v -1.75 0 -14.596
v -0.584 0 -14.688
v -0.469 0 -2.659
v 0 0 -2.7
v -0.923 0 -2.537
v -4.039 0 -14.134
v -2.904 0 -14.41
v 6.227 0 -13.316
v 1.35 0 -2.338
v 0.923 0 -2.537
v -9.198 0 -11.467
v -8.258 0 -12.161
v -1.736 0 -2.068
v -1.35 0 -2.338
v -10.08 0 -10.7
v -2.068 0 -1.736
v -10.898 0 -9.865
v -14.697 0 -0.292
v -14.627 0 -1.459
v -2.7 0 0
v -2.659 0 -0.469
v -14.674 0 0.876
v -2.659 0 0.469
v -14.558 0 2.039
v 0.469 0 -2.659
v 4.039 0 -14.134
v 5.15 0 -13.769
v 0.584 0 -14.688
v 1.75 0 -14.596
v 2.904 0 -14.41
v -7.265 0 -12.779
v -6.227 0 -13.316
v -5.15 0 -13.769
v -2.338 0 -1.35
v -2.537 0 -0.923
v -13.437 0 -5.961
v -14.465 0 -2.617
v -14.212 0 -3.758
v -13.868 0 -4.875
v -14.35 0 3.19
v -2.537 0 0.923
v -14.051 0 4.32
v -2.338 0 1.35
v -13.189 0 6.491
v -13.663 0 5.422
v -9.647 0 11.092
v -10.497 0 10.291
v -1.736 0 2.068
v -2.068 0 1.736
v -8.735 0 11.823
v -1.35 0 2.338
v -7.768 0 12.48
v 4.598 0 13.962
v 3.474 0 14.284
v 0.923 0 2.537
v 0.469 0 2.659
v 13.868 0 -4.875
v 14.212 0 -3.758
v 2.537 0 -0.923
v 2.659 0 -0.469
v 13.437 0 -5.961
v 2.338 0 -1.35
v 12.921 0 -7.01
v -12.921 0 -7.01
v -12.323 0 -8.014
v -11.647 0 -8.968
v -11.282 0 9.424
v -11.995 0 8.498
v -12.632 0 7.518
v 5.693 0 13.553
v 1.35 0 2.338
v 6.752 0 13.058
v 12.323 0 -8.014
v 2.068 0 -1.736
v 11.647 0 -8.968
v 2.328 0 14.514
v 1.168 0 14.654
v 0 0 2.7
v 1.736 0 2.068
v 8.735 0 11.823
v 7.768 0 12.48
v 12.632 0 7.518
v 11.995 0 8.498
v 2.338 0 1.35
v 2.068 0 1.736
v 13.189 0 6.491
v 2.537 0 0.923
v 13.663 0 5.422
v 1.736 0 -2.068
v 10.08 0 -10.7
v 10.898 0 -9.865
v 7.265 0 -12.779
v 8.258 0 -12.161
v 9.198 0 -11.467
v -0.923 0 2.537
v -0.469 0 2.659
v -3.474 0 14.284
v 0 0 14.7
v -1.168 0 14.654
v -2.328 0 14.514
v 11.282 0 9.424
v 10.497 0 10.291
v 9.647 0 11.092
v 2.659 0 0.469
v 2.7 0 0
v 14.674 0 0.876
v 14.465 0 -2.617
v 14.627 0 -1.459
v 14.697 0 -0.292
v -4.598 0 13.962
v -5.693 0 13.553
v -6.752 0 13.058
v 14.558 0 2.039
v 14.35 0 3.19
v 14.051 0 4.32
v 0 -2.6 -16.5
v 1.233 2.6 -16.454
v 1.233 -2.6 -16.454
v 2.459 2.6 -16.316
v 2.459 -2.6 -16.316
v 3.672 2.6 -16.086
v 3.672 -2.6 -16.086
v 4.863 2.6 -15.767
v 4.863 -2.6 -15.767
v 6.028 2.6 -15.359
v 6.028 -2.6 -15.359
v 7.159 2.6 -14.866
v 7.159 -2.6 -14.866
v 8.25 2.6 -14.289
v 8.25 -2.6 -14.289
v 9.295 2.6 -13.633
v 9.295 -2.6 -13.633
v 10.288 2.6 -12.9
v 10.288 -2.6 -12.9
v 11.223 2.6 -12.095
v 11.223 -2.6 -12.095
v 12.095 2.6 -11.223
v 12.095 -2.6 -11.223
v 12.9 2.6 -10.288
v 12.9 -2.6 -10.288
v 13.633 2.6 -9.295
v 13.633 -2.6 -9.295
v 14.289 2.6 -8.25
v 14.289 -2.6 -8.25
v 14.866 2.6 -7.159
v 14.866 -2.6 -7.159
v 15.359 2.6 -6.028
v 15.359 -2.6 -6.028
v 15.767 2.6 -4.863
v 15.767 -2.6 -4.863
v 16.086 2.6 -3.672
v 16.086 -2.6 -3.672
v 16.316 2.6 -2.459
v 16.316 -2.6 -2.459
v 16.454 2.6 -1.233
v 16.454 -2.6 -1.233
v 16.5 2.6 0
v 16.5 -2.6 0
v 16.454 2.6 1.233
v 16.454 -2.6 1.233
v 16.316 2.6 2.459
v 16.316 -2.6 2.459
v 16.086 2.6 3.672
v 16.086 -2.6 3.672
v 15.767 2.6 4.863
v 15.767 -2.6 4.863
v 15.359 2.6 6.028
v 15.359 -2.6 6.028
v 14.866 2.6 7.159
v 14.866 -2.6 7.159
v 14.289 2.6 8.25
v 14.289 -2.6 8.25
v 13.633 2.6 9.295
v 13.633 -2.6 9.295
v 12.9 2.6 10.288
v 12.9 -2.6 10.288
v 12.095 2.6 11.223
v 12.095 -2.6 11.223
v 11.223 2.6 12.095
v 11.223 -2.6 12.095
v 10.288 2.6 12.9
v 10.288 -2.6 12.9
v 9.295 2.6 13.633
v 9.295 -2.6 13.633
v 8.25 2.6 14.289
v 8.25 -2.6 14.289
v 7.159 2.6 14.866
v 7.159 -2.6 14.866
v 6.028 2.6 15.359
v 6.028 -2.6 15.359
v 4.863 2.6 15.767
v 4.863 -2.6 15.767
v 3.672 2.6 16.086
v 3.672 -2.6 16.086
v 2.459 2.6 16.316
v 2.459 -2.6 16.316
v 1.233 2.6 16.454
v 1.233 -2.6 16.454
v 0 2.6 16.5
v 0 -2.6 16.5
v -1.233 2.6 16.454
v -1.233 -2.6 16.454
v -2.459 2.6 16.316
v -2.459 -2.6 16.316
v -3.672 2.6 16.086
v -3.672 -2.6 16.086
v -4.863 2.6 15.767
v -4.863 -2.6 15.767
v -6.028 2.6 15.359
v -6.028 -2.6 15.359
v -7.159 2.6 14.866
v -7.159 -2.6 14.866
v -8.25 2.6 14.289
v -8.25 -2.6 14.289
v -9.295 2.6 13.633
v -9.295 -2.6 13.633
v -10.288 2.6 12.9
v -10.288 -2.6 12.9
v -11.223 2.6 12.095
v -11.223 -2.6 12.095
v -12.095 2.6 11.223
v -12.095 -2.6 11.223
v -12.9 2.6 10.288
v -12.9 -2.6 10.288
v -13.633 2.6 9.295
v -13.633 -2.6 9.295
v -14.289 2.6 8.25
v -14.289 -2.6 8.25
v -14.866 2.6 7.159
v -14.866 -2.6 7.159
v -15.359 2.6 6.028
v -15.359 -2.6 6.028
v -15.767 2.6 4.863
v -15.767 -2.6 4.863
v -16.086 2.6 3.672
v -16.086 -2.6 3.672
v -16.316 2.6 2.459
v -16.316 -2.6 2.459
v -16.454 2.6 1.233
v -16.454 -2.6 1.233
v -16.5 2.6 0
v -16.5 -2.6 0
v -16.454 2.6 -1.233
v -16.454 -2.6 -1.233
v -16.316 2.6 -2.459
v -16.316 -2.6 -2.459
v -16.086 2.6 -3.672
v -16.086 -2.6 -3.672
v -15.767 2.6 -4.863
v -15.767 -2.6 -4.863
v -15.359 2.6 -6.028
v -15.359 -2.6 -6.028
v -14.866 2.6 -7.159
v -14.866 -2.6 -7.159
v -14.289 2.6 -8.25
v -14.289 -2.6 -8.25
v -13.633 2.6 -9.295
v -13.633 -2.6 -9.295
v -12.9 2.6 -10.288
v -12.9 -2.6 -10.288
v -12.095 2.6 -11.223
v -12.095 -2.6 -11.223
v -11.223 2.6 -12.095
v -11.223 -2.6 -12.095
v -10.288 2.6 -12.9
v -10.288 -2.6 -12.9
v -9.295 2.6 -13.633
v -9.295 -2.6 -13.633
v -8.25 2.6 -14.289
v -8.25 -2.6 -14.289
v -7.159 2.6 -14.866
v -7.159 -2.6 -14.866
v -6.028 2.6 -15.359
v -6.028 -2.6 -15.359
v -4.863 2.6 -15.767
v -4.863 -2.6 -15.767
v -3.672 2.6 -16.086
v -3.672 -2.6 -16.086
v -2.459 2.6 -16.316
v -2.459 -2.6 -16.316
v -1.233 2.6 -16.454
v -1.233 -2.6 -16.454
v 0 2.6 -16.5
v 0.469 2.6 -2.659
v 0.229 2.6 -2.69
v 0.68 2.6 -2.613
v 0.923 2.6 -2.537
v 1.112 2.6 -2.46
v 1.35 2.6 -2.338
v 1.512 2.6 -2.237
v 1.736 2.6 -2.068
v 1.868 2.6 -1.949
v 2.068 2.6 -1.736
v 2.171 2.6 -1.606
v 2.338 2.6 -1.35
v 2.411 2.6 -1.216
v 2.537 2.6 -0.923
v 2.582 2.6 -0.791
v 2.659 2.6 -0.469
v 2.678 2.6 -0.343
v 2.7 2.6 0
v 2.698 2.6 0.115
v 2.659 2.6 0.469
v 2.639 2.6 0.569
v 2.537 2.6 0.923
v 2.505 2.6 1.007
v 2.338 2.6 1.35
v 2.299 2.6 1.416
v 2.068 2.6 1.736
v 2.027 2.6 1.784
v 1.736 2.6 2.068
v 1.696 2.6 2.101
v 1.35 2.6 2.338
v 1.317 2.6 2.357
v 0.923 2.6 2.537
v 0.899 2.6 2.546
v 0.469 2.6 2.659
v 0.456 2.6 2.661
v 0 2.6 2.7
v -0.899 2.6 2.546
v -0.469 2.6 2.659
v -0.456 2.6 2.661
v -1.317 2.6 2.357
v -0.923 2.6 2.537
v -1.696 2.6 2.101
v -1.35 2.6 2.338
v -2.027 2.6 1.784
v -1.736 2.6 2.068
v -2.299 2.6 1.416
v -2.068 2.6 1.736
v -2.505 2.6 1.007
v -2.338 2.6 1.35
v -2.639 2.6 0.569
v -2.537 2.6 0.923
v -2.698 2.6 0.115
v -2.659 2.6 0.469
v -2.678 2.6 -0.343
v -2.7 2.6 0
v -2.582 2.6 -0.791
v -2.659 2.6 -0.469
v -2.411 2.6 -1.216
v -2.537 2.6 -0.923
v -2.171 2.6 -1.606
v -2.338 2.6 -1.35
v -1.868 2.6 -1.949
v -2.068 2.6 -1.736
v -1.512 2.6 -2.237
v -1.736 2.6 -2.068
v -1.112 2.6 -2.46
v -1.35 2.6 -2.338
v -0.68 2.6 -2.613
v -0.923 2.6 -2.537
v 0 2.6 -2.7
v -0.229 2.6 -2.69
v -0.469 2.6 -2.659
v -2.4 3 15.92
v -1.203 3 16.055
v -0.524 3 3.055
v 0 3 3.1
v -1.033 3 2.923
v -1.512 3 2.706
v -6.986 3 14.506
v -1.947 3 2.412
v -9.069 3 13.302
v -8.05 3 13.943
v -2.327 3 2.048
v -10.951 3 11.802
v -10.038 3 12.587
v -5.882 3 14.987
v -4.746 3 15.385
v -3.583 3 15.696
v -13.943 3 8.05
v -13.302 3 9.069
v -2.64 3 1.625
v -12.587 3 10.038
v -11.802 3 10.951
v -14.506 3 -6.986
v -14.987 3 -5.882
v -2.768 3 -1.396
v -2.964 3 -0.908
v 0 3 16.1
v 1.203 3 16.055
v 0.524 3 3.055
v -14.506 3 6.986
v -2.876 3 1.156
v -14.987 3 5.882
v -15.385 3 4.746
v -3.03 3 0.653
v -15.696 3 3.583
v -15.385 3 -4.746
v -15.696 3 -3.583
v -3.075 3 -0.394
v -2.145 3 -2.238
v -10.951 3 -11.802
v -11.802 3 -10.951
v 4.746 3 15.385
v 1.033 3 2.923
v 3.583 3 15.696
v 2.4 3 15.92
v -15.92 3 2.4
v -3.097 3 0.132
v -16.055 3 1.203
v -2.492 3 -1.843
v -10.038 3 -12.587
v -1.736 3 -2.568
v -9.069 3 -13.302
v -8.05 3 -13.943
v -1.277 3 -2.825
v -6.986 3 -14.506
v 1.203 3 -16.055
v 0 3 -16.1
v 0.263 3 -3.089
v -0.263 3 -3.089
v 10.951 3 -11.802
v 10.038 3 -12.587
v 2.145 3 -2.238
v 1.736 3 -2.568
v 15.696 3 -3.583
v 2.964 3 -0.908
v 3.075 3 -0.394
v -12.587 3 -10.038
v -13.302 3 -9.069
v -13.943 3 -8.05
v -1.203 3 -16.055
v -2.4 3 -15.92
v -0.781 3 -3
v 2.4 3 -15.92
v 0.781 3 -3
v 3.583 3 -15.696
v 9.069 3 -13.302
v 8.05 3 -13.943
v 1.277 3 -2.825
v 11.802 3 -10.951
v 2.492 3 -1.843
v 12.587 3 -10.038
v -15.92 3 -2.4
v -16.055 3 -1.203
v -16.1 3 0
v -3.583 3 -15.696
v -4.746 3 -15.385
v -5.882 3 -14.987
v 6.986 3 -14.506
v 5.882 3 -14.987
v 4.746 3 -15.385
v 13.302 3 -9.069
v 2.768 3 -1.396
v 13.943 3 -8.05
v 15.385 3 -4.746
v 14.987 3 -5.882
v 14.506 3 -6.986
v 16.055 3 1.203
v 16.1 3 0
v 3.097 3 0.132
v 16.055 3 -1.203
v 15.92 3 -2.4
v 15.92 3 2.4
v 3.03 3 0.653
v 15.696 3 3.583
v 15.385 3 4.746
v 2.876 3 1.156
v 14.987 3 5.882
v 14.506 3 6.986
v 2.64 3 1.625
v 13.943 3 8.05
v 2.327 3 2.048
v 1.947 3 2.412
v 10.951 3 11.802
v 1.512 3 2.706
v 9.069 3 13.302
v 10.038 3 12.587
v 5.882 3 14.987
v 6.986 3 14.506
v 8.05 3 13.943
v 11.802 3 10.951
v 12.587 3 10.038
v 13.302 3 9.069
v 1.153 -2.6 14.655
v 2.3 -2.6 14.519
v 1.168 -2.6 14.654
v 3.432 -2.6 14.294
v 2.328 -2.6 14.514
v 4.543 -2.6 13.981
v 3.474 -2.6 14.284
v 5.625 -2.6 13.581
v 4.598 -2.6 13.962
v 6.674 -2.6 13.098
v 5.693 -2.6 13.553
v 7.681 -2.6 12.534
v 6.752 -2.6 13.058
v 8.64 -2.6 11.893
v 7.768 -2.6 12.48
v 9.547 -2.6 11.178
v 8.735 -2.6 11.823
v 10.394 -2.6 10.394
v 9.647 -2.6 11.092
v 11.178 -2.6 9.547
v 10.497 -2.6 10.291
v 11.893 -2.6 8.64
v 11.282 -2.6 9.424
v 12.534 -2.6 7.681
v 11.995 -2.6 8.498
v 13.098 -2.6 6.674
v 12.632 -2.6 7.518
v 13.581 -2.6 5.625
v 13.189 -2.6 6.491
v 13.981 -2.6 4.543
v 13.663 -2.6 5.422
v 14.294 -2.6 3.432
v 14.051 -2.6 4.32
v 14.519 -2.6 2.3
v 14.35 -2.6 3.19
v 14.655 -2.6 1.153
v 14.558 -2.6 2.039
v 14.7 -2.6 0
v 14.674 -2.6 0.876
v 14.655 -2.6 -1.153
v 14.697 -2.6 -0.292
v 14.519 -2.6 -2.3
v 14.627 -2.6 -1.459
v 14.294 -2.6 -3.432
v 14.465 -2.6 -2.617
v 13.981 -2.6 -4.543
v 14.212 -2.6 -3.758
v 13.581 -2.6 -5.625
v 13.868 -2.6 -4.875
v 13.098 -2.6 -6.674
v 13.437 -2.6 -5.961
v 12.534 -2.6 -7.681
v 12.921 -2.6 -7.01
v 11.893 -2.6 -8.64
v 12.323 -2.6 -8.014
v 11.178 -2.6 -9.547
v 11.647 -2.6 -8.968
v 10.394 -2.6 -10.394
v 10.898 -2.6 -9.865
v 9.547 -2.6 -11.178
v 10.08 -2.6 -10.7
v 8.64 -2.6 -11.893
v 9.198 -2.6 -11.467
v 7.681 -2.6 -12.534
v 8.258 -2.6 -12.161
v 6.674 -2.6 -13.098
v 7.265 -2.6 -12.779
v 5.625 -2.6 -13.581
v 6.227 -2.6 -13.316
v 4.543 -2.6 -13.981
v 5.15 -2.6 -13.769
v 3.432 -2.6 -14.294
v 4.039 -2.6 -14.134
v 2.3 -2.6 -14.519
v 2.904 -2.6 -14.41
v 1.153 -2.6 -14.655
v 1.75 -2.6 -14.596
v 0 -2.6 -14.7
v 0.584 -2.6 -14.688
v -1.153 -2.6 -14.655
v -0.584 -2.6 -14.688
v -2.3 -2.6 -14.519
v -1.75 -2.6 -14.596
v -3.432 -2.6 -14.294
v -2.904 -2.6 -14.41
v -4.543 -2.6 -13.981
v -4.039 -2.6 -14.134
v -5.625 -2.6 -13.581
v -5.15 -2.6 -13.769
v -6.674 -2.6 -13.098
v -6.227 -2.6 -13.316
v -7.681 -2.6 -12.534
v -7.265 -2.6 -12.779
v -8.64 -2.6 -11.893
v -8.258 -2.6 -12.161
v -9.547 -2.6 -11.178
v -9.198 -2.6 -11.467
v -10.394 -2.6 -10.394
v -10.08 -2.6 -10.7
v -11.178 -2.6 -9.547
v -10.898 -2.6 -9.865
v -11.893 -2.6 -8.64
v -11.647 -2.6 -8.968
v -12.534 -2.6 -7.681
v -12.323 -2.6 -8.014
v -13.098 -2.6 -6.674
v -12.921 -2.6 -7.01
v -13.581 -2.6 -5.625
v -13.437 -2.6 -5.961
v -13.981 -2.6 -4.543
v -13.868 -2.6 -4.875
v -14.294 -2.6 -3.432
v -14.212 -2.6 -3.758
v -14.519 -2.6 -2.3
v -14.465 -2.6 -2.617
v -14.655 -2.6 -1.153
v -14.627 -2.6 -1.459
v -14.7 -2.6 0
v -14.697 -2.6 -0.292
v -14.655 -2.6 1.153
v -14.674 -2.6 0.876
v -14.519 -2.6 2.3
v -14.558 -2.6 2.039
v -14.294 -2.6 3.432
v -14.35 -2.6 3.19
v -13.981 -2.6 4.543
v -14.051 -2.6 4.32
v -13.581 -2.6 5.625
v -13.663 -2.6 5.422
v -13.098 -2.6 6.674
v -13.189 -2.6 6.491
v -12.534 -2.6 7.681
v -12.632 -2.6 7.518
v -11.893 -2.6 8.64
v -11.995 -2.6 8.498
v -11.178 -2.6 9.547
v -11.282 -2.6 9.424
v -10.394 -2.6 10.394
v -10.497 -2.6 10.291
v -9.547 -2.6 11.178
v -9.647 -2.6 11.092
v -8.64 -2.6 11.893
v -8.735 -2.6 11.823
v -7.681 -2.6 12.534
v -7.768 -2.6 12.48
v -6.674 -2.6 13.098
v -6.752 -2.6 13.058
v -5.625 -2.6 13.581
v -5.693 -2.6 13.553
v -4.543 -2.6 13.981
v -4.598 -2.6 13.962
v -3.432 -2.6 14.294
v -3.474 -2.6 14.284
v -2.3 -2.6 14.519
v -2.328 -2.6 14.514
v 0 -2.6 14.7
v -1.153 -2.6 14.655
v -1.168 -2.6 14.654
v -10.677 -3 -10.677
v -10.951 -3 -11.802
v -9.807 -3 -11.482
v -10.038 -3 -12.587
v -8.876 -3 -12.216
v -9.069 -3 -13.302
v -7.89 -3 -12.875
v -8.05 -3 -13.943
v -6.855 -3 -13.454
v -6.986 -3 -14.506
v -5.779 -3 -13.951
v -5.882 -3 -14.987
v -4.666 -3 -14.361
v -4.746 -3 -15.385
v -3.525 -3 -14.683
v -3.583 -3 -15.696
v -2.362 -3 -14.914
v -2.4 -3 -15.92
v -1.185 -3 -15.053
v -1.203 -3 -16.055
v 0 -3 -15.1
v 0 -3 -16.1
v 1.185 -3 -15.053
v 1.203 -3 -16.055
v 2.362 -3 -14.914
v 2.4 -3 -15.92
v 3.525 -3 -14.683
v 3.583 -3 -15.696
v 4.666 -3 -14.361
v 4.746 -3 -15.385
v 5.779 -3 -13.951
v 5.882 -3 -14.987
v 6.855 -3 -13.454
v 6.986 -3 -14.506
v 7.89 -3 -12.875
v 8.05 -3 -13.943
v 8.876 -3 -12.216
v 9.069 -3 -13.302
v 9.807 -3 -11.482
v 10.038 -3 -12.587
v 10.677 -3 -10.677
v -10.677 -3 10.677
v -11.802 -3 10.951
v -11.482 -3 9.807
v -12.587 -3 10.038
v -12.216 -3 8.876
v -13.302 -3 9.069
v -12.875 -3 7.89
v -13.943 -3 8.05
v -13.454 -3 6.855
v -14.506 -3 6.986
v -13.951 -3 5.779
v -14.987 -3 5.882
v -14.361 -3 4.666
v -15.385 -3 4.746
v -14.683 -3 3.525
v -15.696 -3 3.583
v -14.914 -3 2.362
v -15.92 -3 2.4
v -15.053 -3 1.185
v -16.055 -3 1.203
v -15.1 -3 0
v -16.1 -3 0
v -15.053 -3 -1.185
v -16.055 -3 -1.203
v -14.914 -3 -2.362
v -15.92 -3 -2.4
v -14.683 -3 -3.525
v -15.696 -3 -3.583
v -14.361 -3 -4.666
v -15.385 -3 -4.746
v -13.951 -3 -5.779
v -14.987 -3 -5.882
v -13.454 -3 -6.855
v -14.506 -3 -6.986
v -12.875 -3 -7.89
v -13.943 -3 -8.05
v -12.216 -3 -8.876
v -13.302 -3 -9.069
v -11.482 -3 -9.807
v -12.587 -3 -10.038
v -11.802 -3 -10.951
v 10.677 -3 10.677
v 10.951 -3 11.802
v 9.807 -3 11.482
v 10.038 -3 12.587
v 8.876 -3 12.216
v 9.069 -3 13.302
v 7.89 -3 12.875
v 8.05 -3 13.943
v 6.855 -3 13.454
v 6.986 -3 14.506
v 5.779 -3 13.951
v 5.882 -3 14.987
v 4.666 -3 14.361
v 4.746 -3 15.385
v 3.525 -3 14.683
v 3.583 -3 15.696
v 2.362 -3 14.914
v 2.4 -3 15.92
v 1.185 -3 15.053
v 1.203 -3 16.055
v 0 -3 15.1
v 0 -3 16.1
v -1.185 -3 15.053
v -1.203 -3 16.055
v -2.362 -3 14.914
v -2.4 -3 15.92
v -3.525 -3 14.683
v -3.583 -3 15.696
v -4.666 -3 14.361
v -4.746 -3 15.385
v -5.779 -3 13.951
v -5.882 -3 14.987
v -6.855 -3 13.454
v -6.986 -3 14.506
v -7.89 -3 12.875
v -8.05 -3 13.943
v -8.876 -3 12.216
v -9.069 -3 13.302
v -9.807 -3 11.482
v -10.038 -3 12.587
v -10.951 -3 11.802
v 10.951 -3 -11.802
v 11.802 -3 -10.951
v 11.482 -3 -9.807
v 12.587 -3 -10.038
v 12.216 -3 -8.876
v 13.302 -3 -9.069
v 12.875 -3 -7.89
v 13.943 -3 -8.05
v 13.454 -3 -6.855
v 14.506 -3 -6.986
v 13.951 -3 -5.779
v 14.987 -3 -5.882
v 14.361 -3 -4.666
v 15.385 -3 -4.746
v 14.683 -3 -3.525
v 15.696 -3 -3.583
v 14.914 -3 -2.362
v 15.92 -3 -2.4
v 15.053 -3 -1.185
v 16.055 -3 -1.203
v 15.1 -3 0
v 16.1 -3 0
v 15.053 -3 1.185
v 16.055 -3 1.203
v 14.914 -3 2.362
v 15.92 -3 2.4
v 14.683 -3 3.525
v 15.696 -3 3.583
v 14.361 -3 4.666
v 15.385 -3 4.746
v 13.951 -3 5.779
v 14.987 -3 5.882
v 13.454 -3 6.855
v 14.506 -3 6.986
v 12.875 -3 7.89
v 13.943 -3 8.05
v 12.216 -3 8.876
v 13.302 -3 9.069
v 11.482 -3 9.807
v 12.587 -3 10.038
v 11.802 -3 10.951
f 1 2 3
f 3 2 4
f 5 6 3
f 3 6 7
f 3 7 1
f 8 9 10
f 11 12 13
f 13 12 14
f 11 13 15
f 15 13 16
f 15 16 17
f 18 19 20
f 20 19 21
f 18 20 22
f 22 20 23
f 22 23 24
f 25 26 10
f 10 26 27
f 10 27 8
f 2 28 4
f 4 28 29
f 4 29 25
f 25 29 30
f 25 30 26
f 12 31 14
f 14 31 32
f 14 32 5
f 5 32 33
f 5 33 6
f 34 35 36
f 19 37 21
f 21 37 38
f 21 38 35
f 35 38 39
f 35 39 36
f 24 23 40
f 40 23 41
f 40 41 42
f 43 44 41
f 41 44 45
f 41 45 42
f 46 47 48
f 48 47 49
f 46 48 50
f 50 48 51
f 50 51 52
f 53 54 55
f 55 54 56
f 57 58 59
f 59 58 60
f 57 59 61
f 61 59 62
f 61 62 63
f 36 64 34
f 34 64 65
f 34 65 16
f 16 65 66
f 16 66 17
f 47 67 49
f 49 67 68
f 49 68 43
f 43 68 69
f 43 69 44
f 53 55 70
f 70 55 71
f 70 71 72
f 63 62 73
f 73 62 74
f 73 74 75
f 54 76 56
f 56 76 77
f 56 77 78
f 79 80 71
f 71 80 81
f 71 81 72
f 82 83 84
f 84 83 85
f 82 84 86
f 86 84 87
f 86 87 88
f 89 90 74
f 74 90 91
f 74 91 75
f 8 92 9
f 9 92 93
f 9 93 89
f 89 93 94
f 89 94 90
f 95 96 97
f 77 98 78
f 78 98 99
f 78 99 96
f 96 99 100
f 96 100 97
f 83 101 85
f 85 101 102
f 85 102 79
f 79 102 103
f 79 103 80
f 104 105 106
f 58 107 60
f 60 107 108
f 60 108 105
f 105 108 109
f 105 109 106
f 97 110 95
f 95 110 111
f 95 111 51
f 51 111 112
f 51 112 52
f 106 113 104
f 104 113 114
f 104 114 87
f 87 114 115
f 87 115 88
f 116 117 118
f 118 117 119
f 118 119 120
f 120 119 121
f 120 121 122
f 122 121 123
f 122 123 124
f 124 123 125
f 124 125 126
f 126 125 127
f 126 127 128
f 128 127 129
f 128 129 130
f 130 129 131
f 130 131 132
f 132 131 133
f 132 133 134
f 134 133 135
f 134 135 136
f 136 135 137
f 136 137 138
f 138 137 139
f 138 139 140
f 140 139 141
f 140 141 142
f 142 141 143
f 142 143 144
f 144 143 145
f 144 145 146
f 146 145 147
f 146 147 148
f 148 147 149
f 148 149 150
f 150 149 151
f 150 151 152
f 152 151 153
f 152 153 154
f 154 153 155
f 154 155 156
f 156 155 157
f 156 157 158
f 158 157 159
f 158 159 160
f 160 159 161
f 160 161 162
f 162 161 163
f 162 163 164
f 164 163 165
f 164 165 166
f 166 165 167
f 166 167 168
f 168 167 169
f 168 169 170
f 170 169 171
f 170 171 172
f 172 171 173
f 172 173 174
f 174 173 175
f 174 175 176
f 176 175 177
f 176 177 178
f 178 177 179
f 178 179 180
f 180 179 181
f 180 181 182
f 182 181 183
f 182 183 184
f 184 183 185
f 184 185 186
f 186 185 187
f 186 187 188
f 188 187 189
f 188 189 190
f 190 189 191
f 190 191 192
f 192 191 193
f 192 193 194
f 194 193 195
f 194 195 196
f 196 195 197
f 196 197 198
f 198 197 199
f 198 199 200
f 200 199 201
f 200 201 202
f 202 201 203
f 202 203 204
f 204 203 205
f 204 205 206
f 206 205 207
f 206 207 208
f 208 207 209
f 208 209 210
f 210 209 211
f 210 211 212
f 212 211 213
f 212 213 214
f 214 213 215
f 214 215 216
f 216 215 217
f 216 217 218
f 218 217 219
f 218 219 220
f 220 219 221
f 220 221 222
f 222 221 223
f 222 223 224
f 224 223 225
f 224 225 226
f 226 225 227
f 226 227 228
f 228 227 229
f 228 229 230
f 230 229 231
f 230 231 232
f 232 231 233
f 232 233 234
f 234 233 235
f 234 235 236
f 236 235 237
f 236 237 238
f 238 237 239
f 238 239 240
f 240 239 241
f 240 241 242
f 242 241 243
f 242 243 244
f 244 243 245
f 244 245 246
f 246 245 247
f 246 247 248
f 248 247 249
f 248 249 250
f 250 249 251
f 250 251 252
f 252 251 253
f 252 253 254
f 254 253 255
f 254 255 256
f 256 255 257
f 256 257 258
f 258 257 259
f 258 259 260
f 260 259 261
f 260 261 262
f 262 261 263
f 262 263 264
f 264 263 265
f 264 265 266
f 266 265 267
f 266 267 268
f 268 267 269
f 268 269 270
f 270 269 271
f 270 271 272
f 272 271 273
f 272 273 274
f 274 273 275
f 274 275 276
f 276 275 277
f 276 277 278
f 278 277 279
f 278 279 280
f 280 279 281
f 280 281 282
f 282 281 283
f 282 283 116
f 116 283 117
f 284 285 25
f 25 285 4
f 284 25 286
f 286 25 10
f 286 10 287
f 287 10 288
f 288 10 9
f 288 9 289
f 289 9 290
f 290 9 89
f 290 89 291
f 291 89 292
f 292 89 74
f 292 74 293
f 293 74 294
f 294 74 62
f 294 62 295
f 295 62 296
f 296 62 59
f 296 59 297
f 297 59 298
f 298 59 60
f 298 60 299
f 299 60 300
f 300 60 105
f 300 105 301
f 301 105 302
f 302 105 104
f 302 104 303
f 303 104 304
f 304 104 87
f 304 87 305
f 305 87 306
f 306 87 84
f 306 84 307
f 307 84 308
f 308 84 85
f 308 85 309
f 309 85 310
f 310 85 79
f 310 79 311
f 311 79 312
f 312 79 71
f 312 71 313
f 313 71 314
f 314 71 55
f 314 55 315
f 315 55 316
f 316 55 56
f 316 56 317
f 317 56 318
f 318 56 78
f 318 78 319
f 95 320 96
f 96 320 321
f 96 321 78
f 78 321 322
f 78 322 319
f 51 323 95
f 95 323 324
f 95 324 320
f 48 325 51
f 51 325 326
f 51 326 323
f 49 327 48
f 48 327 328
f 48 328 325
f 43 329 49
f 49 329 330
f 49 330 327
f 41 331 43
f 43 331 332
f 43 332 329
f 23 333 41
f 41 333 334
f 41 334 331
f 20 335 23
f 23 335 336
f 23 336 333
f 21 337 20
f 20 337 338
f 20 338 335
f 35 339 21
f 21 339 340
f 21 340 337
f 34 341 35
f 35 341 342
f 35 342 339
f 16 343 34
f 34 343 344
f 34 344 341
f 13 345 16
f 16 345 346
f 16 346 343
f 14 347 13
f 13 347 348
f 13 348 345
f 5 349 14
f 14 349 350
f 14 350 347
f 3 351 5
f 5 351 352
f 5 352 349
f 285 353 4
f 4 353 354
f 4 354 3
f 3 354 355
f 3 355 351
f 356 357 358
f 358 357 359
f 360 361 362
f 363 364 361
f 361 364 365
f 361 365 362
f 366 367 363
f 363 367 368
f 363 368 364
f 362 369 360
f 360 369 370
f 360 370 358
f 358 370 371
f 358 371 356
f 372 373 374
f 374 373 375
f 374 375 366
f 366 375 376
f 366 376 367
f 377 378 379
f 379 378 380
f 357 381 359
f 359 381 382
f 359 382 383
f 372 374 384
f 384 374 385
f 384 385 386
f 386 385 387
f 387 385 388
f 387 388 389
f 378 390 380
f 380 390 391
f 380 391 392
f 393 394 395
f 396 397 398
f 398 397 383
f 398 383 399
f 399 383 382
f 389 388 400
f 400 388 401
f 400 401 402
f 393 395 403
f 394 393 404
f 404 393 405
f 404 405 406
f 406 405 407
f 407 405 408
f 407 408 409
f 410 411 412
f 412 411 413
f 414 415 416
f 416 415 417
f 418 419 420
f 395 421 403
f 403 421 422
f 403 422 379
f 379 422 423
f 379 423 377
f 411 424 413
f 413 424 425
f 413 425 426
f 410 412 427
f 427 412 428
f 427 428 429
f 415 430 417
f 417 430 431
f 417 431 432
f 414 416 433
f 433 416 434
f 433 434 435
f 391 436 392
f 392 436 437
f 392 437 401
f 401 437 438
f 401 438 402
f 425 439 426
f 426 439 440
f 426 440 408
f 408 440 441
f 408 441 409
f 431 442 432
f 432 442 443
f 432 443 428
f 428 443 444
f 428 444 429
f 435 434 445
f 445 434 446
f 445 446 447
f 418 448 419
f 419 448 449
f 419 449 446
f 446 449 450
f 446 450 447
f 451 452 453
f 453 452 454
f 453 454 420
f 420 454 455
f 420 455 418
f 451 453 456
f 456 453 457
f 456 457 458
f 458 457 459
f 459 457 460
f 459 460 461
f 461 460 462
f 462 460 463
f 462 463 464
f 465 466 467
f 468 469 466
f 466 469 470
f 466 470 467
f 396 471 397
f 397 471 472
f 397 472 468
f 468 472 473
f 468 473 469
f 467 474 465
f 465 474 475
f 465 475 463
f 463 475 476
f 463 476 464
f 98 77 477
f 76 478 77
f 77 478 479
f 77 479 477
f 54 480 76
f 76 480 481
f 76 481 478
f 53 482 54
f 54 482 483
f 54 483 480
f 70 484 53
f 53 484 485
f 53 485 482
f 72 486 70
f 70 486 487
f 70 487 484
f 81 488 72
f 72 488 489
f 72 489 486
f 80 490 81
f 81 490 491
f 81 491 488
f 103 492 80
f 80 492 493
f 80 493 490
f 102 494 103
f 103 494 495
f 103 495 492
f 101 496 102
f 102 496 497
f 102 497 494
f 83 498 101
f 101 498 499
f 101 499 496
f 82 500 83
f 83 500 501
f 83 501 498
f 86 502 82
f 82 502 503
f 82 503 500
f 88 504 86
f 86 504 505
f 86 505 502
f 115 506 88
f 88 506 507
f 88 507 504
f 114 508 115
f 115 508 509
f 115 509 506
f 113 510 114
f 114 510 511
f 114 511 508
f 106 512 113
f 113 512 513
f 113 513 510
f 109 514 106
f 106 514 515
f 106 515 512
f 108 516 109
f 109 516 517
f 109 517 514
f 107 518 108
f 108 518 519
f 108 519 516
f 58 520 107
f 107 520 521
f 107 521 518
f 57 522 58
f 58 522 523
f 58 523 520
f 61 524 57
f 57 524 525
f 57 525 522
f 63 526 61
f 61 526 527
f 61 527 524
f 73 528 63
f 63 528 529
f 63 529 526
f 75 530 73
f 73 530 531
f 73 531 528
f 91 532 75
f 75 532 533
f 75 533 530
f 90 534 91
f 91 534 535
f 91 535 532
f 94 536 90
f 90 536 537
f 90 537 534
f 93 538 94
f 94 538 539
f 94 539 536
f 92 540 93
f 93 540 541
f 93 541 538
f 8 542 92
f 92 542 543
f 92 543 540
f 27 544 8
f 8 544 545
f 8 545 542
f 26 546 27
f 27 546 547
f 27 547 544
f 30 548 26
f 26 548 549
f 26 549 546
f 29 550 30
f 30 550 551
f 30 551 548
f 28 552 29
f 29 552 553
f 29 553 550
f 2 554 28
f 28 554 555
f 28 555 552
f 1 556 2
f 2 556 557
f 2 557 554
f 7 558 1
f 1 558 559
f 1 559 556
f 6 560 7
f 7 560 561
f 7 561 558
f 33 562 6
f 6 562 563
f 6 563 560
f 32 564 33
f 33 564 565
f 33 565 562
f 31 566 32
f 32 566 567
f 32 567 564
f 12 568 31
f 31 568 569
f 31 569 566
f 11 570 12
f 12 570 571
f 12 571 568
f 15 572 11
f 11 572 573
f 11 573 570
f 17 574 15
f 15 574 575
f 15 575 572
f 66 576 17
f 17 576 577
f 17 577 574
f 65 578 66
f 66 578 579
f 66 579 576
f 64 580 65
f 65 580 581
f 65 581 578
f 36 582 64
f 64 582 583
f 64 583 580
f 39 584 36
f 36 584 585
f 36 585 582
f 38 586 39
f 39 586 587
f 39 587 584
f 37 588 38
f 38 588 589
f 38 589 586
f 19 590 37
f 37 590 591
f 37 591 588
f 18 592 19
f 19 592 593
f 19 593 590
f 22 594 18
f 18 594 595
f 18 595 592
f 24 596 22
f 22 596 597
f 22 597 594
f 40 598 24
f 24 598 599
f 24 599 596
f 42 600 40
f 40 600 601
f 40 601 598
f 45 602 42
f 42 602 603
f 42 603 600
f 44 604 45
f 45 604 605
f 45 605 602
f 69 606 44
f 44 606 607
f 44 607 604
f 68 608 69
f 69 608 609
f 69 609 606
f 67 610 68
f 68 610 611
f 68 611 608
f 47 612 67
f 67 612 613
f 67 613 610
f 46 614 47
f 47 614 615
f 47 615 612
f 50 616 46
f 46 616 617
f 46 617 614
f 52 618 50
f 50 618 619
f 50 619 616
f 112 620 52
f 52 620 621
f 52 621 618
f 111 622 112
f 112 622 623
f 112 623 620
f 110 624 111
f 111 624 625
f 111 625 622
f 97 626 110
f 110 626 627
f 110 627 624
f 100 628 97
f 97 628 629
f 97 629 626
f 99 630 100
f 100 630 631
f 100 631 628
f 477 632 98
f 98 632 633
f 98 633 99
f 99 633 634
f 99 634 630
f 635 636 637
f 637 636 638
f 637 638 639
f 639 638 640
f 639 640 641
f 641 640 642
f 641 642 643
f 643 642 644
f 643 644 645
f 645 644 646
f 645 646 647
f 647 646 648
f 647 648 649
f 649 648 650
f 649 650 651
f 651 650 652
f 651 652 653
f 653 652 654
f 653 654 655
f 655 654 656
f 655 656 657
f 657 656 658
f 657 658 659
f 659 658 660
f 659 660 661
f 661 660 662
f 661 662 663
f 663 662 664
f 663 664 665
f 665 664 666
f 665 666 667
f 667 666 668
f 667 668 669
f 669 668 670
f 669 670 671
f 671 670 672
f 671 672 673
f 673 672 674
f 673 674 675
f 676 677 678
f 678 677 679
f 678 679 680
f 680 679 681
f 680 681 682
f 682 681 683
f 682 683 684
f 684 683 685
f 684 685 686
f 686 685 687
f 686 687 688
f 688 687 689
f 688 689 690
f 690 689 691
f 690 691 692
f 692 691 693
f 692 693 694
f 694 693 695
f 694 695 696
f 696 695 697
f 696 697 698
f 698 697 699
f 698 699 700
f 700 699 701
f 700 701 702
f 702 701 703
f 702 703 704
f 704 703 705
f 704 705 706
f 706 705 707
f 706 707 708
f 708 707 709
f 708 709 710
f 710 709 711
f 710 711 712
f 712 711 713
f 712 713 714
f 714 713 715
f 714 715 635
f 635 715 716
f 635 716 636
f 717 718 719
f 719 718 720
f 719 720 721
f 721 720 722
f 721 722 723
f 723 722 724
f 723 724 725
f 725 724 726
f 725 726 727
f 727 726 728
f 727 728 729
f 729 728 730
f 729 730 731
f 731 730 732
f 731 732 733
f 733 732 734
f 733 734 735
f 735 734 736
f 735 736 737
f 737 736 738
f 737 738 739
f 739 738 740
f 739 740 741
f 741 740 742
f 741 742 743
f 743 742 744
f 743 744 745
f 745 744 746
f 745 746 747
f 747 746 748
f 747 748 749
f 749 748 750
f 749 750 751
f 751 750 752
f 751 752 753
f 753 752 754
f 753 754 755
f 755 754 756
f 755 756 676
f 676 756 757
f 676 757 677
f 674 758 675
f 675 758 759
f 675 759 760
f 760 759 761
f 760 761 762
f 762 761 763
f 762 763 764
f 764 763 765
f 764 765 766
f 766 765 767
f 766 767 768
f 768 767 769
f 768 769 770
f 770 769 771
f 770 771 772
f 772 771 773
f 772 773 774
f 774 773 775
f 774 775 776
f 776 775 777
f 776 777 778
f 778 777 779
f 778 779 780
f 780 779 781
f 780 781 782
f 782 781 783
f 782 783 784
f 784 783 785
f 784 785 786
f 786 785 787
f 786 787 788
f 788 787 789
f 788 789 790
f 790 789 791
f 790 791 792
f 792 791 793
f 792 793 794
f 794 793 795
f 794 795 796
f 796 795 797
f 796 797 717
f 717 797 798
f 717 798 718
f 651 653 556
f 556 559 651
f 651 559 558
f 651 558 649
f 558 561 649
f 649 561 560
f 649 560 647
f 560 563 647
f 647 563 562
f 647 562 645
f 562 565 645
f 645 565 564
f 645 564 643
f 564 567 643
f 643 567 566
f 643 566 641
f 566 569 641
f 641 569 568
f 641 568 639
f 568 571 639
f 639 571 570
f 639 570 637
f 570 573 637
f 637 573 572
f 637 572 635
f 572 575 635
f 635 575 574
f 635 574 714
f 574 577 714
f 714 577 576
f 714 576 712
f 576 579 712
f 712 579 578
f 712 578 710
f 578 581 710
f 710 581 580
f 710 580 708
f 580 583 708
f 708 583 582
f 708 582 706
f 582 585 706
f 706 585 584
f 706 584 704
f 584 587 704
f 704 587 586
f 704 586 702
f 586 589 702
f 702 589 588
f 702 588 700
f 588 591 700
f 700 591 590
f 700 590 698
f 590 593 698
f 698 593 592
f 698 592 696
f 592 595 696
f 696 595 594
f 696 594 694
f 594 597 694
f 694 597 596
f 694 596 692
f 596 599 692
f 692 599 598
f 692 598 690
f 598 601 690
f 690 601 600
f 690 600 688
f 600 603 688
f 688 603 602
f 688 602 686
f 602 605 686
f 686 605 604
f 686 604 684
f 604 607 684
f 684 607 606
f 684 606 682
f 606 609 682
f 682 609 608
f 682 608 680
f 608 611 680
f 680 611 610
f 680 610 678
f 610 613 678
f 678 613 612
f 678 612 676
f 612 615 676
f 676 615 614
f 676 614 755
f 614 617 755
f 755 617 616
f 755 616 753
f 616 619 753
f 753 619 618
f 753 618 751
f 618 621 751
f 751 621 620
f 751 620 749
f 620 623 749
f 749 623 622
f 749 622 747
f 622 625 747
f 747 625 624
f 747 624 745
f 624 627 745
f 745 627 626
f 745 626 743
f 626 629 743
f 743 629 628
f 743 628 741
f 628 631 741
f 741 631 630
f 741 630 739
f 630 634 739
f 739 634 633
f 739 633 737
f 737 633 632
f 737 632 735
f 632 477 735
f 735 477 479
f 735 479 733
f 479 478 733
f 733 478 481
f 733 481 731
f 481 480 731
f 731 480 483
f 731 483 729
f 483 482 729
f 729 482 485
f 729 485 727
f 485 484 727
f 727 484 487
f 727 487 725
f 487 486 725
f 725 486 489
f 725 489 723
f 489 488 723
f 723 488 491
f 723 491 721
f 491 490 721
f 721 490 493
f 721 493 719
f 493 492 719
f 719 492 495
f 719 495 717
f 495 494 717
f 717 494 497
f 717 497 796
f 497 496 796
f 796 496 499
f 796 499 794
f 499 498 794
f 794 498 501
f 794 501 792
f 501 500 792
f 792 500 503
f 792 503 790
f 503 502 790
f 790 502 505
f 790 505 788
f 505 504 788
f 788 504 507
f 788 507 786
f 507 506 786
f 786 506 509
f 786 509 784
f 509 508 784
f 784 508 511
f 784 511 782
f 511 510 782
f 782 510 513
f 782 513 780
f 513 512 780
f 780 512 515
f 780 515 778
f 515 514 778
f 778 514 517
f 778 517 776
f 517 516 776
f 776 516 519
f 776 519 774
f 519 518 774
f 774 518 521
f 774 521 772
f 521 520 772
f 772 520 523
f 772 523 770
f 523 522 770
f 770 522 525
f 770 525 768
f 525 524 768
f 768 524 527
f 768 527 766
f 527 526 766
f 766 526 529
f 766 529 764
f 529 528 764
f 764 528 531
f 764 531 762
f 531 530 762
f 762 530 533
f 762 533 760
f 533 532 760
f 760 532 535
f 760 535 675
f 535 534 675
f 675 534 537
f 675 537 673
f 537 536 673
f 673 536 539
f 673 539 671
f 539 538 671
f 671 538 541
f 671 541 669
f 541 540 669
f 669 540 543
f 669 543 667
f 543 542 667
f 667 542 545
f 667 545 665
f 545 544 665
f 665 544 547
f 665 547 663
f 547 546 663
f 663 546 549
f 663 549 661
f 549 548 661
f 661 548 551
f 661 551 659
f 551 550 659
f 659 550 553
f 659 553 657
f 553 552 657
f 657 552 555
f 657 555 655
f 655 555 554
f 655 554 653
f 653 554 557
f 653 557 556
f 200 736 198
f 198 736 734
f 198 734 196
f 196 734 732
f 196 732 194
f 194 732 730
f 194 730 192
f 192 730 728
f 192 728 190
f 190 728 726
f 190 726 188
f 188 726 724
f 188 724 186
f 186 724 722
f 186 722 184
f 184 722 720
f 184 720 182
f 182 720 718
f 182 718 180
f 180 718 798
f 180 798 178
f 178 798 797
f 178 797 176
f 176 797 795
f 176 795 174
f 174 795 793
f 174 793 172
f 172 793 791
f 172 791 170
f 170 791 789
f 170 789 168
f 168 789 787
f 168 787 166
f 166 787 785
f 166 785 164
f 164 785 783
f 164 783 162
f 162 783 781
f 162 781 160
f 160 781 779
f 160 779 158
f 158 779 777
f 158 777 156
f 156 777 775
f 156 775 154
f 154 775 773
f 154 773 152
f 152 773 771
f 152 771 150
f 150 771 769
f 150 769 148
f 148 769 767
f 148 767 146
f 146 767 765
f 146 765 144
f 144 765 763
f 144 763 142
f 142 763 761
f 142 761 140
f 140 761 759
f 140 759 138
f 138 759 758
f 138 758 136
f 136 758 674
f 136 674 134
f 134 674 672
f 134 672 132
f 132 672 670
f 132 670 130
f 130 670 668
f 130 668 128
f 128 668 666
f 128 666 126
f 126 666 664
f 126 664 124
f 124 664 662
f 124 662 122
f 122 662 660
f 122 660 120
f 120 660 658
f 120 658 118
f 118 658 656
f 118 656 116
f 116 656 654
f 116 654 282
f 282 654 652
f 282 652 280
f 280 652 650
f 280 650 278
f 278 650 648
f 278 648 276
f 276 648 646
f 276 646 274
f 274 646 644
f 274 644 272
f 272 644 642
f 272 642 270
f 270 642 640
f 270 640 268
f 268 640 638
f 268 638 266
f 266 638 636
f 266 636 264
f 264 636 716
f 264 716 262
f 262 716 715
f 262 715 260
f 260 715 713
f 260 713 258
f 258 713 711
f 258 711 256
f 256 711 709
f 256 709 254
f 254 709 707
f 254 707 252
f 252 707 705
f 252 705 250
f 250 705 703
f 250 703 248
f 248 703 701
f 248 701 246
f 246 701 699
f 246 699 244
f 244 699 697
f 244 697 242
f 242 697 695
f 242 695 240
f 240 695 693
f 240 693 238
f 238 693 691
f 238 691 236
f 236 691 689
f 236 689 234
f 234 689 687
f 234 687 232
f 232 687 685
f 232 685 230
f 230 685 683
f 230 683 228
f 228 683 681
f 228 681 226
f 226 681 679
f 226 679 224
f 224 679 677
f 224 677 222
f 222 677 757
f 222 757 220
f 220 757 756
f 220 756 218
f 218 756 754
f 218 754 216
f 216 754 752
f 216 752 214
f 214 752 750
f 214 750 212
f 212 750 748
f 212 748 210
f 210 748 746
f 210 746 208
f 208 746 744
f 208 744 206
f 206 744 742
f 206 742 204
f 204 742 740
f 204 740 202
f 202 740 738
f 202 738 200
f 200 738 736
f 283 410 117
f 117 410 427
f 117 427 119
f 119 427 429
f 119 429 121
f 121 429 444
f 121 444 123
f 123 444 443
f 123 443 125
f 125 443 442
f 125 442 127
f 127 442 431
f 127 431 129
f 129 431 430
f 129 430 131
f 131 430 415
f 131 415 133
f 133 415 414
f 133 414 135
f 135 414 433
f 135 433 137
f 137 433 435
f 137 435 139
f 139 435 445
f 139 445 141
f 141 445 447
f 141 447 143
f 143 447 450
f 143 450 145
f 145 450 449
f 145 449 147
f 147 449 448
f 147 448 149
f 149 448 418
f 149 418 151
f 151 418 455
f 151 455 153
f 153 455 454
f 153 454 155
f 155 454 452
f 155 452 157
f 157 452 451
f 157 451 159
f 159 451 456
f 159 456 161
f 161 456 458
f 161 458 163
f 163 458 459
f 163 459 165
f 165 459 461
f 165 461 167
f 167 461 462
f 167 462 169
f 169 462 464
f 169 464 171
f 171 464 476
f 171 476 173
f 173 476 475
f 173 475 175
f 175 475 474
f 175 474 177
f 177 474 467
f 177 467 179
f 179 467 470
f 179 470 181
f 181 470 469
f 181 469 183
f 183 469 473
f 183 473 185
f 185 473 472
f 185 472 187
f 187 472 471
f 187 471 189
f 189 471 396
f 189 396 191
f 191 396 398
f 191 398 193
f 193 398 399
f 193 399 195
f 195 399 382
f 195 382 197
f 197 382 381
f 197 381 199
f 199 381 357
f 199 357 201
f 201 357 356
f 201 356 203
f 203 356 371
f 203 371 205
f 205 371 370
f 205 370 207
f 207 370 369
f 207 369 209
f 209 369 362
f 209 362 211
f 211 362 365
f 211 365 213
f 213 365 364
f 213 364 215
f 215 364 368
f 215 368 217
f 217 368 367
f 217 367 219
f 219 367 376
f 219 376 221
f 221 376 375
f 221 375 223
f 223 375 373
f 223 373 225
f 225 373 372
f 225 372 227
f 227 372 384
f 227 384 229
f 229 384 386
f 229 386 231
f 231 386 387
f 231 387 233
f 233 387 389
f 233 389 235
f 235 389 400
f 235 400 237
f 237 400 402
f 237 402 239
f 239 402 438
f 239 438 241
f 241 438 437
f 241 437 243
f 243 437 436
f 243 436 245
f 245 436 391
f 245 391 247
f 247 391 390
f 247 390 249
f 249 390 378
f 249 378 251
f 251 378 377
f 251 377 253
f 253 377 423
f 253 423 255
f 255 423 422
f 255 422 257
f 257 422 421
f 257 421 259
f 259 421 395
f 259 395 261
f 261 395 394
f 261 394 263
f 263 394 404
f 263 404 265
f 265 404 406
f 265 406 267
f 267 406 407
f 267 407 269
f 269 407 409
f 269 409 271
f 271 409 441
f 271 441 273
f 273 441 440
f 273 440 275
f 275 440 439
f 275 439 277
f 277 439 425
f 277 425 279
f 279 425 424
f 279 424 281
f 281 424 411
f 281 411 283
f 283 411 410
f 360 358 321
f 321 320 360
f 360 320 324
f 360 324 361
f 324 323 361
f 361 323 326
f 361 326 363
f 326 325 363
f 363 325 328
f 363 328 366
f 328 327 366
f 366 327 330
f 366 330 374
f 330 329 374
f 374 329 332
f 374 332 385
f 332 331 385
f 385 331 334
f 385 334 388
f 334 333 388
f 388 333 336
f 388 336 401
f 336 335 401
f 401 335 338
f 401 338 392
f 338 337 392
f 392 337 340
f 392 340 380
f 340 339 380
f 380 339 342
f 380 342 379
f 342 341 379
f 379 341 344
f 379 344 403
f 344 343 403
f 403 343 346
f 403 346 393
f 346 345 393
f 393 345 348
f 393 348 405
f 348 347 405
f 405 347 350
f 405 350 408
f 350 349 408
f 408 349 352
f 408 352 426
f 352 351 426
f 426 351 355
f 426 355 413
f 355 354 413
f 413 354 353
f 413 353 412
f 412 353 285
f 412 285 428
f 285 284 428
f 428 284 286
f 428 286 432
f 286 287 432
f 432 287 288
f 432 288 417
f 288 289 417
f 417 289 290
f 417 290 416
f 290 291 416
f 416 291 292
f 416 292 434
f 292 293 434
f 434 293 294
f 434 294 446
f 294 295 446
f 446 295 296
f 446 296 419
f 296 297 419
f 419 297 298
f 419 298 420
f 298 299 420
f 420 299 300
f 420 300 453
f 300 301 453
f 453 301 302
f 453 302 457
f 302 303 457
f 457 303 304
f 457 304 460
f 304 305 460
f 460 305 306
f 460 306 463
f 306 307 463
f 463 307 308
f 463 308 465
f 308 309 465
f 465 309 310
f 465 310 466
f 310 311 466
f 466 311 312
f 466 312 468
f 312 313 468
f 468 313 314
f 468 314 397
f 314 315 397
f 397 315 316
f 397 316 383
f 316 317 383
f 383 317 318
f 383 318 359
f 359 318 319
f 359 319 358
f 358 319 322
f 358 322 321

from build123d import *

# Parameters (mm, degrees)
SKETCH1_R           = 16.5
SKETCH1_R_2         = 2.7
BOSS_EXTRUDE1_DEPTH = 3
BOSS_EXTRUDE2_START = -3
SKETCH1_3_R         = 16.5
SKETCH1_3_R_2       = 14.7
BOSS_EXTRUDE2_DEPTH = 3
CHAMFER1_SIZE       = 0.4


with BuildPart() as part:
    # Sketch1 → Boss-Extrude1 (new body)
    with BuildSketch(Plane(origin=(0, 0, 0), x_dir=(1, 0, 0), z_dir=(0, 1, 0))):
        Circle(SKETCH1_R)
        Circle(SKETCH1_R_2, mode=Mode.SUBTRACT)
    extrude(amount=BOSS_EXTRUDE1_DEPTH)

    # Sketch1<3> → Boss-Extrude2 (add)
    with BuildSketch(Plane(origin=(0, 0, 0), x_dir=(1, 0, 0), z_dir=(0, 1, 0)).offset(BOSS_EXTRUDE2_START)):
        Circle(SKETCH1_3_R)
        Circle(SKETCH1_3_R_2, mode=Mode.SUBTRACT)
    extrude(amount=BOSS_EXTRUDE2_DEPTH)

    # Chamfer1
    chamfer1_edges = [part.edges().sort_by_distance(p)[0] for p in [
        (-14.7, -3, 0),
        (-16.5, -3, 0),
        (-16.5, 3, 0),
        (-2.7, 3, 0),
    ]]
    chamfer(chamfer1_edges, length=CHAMFER1_SIZE)


solid = part.part
